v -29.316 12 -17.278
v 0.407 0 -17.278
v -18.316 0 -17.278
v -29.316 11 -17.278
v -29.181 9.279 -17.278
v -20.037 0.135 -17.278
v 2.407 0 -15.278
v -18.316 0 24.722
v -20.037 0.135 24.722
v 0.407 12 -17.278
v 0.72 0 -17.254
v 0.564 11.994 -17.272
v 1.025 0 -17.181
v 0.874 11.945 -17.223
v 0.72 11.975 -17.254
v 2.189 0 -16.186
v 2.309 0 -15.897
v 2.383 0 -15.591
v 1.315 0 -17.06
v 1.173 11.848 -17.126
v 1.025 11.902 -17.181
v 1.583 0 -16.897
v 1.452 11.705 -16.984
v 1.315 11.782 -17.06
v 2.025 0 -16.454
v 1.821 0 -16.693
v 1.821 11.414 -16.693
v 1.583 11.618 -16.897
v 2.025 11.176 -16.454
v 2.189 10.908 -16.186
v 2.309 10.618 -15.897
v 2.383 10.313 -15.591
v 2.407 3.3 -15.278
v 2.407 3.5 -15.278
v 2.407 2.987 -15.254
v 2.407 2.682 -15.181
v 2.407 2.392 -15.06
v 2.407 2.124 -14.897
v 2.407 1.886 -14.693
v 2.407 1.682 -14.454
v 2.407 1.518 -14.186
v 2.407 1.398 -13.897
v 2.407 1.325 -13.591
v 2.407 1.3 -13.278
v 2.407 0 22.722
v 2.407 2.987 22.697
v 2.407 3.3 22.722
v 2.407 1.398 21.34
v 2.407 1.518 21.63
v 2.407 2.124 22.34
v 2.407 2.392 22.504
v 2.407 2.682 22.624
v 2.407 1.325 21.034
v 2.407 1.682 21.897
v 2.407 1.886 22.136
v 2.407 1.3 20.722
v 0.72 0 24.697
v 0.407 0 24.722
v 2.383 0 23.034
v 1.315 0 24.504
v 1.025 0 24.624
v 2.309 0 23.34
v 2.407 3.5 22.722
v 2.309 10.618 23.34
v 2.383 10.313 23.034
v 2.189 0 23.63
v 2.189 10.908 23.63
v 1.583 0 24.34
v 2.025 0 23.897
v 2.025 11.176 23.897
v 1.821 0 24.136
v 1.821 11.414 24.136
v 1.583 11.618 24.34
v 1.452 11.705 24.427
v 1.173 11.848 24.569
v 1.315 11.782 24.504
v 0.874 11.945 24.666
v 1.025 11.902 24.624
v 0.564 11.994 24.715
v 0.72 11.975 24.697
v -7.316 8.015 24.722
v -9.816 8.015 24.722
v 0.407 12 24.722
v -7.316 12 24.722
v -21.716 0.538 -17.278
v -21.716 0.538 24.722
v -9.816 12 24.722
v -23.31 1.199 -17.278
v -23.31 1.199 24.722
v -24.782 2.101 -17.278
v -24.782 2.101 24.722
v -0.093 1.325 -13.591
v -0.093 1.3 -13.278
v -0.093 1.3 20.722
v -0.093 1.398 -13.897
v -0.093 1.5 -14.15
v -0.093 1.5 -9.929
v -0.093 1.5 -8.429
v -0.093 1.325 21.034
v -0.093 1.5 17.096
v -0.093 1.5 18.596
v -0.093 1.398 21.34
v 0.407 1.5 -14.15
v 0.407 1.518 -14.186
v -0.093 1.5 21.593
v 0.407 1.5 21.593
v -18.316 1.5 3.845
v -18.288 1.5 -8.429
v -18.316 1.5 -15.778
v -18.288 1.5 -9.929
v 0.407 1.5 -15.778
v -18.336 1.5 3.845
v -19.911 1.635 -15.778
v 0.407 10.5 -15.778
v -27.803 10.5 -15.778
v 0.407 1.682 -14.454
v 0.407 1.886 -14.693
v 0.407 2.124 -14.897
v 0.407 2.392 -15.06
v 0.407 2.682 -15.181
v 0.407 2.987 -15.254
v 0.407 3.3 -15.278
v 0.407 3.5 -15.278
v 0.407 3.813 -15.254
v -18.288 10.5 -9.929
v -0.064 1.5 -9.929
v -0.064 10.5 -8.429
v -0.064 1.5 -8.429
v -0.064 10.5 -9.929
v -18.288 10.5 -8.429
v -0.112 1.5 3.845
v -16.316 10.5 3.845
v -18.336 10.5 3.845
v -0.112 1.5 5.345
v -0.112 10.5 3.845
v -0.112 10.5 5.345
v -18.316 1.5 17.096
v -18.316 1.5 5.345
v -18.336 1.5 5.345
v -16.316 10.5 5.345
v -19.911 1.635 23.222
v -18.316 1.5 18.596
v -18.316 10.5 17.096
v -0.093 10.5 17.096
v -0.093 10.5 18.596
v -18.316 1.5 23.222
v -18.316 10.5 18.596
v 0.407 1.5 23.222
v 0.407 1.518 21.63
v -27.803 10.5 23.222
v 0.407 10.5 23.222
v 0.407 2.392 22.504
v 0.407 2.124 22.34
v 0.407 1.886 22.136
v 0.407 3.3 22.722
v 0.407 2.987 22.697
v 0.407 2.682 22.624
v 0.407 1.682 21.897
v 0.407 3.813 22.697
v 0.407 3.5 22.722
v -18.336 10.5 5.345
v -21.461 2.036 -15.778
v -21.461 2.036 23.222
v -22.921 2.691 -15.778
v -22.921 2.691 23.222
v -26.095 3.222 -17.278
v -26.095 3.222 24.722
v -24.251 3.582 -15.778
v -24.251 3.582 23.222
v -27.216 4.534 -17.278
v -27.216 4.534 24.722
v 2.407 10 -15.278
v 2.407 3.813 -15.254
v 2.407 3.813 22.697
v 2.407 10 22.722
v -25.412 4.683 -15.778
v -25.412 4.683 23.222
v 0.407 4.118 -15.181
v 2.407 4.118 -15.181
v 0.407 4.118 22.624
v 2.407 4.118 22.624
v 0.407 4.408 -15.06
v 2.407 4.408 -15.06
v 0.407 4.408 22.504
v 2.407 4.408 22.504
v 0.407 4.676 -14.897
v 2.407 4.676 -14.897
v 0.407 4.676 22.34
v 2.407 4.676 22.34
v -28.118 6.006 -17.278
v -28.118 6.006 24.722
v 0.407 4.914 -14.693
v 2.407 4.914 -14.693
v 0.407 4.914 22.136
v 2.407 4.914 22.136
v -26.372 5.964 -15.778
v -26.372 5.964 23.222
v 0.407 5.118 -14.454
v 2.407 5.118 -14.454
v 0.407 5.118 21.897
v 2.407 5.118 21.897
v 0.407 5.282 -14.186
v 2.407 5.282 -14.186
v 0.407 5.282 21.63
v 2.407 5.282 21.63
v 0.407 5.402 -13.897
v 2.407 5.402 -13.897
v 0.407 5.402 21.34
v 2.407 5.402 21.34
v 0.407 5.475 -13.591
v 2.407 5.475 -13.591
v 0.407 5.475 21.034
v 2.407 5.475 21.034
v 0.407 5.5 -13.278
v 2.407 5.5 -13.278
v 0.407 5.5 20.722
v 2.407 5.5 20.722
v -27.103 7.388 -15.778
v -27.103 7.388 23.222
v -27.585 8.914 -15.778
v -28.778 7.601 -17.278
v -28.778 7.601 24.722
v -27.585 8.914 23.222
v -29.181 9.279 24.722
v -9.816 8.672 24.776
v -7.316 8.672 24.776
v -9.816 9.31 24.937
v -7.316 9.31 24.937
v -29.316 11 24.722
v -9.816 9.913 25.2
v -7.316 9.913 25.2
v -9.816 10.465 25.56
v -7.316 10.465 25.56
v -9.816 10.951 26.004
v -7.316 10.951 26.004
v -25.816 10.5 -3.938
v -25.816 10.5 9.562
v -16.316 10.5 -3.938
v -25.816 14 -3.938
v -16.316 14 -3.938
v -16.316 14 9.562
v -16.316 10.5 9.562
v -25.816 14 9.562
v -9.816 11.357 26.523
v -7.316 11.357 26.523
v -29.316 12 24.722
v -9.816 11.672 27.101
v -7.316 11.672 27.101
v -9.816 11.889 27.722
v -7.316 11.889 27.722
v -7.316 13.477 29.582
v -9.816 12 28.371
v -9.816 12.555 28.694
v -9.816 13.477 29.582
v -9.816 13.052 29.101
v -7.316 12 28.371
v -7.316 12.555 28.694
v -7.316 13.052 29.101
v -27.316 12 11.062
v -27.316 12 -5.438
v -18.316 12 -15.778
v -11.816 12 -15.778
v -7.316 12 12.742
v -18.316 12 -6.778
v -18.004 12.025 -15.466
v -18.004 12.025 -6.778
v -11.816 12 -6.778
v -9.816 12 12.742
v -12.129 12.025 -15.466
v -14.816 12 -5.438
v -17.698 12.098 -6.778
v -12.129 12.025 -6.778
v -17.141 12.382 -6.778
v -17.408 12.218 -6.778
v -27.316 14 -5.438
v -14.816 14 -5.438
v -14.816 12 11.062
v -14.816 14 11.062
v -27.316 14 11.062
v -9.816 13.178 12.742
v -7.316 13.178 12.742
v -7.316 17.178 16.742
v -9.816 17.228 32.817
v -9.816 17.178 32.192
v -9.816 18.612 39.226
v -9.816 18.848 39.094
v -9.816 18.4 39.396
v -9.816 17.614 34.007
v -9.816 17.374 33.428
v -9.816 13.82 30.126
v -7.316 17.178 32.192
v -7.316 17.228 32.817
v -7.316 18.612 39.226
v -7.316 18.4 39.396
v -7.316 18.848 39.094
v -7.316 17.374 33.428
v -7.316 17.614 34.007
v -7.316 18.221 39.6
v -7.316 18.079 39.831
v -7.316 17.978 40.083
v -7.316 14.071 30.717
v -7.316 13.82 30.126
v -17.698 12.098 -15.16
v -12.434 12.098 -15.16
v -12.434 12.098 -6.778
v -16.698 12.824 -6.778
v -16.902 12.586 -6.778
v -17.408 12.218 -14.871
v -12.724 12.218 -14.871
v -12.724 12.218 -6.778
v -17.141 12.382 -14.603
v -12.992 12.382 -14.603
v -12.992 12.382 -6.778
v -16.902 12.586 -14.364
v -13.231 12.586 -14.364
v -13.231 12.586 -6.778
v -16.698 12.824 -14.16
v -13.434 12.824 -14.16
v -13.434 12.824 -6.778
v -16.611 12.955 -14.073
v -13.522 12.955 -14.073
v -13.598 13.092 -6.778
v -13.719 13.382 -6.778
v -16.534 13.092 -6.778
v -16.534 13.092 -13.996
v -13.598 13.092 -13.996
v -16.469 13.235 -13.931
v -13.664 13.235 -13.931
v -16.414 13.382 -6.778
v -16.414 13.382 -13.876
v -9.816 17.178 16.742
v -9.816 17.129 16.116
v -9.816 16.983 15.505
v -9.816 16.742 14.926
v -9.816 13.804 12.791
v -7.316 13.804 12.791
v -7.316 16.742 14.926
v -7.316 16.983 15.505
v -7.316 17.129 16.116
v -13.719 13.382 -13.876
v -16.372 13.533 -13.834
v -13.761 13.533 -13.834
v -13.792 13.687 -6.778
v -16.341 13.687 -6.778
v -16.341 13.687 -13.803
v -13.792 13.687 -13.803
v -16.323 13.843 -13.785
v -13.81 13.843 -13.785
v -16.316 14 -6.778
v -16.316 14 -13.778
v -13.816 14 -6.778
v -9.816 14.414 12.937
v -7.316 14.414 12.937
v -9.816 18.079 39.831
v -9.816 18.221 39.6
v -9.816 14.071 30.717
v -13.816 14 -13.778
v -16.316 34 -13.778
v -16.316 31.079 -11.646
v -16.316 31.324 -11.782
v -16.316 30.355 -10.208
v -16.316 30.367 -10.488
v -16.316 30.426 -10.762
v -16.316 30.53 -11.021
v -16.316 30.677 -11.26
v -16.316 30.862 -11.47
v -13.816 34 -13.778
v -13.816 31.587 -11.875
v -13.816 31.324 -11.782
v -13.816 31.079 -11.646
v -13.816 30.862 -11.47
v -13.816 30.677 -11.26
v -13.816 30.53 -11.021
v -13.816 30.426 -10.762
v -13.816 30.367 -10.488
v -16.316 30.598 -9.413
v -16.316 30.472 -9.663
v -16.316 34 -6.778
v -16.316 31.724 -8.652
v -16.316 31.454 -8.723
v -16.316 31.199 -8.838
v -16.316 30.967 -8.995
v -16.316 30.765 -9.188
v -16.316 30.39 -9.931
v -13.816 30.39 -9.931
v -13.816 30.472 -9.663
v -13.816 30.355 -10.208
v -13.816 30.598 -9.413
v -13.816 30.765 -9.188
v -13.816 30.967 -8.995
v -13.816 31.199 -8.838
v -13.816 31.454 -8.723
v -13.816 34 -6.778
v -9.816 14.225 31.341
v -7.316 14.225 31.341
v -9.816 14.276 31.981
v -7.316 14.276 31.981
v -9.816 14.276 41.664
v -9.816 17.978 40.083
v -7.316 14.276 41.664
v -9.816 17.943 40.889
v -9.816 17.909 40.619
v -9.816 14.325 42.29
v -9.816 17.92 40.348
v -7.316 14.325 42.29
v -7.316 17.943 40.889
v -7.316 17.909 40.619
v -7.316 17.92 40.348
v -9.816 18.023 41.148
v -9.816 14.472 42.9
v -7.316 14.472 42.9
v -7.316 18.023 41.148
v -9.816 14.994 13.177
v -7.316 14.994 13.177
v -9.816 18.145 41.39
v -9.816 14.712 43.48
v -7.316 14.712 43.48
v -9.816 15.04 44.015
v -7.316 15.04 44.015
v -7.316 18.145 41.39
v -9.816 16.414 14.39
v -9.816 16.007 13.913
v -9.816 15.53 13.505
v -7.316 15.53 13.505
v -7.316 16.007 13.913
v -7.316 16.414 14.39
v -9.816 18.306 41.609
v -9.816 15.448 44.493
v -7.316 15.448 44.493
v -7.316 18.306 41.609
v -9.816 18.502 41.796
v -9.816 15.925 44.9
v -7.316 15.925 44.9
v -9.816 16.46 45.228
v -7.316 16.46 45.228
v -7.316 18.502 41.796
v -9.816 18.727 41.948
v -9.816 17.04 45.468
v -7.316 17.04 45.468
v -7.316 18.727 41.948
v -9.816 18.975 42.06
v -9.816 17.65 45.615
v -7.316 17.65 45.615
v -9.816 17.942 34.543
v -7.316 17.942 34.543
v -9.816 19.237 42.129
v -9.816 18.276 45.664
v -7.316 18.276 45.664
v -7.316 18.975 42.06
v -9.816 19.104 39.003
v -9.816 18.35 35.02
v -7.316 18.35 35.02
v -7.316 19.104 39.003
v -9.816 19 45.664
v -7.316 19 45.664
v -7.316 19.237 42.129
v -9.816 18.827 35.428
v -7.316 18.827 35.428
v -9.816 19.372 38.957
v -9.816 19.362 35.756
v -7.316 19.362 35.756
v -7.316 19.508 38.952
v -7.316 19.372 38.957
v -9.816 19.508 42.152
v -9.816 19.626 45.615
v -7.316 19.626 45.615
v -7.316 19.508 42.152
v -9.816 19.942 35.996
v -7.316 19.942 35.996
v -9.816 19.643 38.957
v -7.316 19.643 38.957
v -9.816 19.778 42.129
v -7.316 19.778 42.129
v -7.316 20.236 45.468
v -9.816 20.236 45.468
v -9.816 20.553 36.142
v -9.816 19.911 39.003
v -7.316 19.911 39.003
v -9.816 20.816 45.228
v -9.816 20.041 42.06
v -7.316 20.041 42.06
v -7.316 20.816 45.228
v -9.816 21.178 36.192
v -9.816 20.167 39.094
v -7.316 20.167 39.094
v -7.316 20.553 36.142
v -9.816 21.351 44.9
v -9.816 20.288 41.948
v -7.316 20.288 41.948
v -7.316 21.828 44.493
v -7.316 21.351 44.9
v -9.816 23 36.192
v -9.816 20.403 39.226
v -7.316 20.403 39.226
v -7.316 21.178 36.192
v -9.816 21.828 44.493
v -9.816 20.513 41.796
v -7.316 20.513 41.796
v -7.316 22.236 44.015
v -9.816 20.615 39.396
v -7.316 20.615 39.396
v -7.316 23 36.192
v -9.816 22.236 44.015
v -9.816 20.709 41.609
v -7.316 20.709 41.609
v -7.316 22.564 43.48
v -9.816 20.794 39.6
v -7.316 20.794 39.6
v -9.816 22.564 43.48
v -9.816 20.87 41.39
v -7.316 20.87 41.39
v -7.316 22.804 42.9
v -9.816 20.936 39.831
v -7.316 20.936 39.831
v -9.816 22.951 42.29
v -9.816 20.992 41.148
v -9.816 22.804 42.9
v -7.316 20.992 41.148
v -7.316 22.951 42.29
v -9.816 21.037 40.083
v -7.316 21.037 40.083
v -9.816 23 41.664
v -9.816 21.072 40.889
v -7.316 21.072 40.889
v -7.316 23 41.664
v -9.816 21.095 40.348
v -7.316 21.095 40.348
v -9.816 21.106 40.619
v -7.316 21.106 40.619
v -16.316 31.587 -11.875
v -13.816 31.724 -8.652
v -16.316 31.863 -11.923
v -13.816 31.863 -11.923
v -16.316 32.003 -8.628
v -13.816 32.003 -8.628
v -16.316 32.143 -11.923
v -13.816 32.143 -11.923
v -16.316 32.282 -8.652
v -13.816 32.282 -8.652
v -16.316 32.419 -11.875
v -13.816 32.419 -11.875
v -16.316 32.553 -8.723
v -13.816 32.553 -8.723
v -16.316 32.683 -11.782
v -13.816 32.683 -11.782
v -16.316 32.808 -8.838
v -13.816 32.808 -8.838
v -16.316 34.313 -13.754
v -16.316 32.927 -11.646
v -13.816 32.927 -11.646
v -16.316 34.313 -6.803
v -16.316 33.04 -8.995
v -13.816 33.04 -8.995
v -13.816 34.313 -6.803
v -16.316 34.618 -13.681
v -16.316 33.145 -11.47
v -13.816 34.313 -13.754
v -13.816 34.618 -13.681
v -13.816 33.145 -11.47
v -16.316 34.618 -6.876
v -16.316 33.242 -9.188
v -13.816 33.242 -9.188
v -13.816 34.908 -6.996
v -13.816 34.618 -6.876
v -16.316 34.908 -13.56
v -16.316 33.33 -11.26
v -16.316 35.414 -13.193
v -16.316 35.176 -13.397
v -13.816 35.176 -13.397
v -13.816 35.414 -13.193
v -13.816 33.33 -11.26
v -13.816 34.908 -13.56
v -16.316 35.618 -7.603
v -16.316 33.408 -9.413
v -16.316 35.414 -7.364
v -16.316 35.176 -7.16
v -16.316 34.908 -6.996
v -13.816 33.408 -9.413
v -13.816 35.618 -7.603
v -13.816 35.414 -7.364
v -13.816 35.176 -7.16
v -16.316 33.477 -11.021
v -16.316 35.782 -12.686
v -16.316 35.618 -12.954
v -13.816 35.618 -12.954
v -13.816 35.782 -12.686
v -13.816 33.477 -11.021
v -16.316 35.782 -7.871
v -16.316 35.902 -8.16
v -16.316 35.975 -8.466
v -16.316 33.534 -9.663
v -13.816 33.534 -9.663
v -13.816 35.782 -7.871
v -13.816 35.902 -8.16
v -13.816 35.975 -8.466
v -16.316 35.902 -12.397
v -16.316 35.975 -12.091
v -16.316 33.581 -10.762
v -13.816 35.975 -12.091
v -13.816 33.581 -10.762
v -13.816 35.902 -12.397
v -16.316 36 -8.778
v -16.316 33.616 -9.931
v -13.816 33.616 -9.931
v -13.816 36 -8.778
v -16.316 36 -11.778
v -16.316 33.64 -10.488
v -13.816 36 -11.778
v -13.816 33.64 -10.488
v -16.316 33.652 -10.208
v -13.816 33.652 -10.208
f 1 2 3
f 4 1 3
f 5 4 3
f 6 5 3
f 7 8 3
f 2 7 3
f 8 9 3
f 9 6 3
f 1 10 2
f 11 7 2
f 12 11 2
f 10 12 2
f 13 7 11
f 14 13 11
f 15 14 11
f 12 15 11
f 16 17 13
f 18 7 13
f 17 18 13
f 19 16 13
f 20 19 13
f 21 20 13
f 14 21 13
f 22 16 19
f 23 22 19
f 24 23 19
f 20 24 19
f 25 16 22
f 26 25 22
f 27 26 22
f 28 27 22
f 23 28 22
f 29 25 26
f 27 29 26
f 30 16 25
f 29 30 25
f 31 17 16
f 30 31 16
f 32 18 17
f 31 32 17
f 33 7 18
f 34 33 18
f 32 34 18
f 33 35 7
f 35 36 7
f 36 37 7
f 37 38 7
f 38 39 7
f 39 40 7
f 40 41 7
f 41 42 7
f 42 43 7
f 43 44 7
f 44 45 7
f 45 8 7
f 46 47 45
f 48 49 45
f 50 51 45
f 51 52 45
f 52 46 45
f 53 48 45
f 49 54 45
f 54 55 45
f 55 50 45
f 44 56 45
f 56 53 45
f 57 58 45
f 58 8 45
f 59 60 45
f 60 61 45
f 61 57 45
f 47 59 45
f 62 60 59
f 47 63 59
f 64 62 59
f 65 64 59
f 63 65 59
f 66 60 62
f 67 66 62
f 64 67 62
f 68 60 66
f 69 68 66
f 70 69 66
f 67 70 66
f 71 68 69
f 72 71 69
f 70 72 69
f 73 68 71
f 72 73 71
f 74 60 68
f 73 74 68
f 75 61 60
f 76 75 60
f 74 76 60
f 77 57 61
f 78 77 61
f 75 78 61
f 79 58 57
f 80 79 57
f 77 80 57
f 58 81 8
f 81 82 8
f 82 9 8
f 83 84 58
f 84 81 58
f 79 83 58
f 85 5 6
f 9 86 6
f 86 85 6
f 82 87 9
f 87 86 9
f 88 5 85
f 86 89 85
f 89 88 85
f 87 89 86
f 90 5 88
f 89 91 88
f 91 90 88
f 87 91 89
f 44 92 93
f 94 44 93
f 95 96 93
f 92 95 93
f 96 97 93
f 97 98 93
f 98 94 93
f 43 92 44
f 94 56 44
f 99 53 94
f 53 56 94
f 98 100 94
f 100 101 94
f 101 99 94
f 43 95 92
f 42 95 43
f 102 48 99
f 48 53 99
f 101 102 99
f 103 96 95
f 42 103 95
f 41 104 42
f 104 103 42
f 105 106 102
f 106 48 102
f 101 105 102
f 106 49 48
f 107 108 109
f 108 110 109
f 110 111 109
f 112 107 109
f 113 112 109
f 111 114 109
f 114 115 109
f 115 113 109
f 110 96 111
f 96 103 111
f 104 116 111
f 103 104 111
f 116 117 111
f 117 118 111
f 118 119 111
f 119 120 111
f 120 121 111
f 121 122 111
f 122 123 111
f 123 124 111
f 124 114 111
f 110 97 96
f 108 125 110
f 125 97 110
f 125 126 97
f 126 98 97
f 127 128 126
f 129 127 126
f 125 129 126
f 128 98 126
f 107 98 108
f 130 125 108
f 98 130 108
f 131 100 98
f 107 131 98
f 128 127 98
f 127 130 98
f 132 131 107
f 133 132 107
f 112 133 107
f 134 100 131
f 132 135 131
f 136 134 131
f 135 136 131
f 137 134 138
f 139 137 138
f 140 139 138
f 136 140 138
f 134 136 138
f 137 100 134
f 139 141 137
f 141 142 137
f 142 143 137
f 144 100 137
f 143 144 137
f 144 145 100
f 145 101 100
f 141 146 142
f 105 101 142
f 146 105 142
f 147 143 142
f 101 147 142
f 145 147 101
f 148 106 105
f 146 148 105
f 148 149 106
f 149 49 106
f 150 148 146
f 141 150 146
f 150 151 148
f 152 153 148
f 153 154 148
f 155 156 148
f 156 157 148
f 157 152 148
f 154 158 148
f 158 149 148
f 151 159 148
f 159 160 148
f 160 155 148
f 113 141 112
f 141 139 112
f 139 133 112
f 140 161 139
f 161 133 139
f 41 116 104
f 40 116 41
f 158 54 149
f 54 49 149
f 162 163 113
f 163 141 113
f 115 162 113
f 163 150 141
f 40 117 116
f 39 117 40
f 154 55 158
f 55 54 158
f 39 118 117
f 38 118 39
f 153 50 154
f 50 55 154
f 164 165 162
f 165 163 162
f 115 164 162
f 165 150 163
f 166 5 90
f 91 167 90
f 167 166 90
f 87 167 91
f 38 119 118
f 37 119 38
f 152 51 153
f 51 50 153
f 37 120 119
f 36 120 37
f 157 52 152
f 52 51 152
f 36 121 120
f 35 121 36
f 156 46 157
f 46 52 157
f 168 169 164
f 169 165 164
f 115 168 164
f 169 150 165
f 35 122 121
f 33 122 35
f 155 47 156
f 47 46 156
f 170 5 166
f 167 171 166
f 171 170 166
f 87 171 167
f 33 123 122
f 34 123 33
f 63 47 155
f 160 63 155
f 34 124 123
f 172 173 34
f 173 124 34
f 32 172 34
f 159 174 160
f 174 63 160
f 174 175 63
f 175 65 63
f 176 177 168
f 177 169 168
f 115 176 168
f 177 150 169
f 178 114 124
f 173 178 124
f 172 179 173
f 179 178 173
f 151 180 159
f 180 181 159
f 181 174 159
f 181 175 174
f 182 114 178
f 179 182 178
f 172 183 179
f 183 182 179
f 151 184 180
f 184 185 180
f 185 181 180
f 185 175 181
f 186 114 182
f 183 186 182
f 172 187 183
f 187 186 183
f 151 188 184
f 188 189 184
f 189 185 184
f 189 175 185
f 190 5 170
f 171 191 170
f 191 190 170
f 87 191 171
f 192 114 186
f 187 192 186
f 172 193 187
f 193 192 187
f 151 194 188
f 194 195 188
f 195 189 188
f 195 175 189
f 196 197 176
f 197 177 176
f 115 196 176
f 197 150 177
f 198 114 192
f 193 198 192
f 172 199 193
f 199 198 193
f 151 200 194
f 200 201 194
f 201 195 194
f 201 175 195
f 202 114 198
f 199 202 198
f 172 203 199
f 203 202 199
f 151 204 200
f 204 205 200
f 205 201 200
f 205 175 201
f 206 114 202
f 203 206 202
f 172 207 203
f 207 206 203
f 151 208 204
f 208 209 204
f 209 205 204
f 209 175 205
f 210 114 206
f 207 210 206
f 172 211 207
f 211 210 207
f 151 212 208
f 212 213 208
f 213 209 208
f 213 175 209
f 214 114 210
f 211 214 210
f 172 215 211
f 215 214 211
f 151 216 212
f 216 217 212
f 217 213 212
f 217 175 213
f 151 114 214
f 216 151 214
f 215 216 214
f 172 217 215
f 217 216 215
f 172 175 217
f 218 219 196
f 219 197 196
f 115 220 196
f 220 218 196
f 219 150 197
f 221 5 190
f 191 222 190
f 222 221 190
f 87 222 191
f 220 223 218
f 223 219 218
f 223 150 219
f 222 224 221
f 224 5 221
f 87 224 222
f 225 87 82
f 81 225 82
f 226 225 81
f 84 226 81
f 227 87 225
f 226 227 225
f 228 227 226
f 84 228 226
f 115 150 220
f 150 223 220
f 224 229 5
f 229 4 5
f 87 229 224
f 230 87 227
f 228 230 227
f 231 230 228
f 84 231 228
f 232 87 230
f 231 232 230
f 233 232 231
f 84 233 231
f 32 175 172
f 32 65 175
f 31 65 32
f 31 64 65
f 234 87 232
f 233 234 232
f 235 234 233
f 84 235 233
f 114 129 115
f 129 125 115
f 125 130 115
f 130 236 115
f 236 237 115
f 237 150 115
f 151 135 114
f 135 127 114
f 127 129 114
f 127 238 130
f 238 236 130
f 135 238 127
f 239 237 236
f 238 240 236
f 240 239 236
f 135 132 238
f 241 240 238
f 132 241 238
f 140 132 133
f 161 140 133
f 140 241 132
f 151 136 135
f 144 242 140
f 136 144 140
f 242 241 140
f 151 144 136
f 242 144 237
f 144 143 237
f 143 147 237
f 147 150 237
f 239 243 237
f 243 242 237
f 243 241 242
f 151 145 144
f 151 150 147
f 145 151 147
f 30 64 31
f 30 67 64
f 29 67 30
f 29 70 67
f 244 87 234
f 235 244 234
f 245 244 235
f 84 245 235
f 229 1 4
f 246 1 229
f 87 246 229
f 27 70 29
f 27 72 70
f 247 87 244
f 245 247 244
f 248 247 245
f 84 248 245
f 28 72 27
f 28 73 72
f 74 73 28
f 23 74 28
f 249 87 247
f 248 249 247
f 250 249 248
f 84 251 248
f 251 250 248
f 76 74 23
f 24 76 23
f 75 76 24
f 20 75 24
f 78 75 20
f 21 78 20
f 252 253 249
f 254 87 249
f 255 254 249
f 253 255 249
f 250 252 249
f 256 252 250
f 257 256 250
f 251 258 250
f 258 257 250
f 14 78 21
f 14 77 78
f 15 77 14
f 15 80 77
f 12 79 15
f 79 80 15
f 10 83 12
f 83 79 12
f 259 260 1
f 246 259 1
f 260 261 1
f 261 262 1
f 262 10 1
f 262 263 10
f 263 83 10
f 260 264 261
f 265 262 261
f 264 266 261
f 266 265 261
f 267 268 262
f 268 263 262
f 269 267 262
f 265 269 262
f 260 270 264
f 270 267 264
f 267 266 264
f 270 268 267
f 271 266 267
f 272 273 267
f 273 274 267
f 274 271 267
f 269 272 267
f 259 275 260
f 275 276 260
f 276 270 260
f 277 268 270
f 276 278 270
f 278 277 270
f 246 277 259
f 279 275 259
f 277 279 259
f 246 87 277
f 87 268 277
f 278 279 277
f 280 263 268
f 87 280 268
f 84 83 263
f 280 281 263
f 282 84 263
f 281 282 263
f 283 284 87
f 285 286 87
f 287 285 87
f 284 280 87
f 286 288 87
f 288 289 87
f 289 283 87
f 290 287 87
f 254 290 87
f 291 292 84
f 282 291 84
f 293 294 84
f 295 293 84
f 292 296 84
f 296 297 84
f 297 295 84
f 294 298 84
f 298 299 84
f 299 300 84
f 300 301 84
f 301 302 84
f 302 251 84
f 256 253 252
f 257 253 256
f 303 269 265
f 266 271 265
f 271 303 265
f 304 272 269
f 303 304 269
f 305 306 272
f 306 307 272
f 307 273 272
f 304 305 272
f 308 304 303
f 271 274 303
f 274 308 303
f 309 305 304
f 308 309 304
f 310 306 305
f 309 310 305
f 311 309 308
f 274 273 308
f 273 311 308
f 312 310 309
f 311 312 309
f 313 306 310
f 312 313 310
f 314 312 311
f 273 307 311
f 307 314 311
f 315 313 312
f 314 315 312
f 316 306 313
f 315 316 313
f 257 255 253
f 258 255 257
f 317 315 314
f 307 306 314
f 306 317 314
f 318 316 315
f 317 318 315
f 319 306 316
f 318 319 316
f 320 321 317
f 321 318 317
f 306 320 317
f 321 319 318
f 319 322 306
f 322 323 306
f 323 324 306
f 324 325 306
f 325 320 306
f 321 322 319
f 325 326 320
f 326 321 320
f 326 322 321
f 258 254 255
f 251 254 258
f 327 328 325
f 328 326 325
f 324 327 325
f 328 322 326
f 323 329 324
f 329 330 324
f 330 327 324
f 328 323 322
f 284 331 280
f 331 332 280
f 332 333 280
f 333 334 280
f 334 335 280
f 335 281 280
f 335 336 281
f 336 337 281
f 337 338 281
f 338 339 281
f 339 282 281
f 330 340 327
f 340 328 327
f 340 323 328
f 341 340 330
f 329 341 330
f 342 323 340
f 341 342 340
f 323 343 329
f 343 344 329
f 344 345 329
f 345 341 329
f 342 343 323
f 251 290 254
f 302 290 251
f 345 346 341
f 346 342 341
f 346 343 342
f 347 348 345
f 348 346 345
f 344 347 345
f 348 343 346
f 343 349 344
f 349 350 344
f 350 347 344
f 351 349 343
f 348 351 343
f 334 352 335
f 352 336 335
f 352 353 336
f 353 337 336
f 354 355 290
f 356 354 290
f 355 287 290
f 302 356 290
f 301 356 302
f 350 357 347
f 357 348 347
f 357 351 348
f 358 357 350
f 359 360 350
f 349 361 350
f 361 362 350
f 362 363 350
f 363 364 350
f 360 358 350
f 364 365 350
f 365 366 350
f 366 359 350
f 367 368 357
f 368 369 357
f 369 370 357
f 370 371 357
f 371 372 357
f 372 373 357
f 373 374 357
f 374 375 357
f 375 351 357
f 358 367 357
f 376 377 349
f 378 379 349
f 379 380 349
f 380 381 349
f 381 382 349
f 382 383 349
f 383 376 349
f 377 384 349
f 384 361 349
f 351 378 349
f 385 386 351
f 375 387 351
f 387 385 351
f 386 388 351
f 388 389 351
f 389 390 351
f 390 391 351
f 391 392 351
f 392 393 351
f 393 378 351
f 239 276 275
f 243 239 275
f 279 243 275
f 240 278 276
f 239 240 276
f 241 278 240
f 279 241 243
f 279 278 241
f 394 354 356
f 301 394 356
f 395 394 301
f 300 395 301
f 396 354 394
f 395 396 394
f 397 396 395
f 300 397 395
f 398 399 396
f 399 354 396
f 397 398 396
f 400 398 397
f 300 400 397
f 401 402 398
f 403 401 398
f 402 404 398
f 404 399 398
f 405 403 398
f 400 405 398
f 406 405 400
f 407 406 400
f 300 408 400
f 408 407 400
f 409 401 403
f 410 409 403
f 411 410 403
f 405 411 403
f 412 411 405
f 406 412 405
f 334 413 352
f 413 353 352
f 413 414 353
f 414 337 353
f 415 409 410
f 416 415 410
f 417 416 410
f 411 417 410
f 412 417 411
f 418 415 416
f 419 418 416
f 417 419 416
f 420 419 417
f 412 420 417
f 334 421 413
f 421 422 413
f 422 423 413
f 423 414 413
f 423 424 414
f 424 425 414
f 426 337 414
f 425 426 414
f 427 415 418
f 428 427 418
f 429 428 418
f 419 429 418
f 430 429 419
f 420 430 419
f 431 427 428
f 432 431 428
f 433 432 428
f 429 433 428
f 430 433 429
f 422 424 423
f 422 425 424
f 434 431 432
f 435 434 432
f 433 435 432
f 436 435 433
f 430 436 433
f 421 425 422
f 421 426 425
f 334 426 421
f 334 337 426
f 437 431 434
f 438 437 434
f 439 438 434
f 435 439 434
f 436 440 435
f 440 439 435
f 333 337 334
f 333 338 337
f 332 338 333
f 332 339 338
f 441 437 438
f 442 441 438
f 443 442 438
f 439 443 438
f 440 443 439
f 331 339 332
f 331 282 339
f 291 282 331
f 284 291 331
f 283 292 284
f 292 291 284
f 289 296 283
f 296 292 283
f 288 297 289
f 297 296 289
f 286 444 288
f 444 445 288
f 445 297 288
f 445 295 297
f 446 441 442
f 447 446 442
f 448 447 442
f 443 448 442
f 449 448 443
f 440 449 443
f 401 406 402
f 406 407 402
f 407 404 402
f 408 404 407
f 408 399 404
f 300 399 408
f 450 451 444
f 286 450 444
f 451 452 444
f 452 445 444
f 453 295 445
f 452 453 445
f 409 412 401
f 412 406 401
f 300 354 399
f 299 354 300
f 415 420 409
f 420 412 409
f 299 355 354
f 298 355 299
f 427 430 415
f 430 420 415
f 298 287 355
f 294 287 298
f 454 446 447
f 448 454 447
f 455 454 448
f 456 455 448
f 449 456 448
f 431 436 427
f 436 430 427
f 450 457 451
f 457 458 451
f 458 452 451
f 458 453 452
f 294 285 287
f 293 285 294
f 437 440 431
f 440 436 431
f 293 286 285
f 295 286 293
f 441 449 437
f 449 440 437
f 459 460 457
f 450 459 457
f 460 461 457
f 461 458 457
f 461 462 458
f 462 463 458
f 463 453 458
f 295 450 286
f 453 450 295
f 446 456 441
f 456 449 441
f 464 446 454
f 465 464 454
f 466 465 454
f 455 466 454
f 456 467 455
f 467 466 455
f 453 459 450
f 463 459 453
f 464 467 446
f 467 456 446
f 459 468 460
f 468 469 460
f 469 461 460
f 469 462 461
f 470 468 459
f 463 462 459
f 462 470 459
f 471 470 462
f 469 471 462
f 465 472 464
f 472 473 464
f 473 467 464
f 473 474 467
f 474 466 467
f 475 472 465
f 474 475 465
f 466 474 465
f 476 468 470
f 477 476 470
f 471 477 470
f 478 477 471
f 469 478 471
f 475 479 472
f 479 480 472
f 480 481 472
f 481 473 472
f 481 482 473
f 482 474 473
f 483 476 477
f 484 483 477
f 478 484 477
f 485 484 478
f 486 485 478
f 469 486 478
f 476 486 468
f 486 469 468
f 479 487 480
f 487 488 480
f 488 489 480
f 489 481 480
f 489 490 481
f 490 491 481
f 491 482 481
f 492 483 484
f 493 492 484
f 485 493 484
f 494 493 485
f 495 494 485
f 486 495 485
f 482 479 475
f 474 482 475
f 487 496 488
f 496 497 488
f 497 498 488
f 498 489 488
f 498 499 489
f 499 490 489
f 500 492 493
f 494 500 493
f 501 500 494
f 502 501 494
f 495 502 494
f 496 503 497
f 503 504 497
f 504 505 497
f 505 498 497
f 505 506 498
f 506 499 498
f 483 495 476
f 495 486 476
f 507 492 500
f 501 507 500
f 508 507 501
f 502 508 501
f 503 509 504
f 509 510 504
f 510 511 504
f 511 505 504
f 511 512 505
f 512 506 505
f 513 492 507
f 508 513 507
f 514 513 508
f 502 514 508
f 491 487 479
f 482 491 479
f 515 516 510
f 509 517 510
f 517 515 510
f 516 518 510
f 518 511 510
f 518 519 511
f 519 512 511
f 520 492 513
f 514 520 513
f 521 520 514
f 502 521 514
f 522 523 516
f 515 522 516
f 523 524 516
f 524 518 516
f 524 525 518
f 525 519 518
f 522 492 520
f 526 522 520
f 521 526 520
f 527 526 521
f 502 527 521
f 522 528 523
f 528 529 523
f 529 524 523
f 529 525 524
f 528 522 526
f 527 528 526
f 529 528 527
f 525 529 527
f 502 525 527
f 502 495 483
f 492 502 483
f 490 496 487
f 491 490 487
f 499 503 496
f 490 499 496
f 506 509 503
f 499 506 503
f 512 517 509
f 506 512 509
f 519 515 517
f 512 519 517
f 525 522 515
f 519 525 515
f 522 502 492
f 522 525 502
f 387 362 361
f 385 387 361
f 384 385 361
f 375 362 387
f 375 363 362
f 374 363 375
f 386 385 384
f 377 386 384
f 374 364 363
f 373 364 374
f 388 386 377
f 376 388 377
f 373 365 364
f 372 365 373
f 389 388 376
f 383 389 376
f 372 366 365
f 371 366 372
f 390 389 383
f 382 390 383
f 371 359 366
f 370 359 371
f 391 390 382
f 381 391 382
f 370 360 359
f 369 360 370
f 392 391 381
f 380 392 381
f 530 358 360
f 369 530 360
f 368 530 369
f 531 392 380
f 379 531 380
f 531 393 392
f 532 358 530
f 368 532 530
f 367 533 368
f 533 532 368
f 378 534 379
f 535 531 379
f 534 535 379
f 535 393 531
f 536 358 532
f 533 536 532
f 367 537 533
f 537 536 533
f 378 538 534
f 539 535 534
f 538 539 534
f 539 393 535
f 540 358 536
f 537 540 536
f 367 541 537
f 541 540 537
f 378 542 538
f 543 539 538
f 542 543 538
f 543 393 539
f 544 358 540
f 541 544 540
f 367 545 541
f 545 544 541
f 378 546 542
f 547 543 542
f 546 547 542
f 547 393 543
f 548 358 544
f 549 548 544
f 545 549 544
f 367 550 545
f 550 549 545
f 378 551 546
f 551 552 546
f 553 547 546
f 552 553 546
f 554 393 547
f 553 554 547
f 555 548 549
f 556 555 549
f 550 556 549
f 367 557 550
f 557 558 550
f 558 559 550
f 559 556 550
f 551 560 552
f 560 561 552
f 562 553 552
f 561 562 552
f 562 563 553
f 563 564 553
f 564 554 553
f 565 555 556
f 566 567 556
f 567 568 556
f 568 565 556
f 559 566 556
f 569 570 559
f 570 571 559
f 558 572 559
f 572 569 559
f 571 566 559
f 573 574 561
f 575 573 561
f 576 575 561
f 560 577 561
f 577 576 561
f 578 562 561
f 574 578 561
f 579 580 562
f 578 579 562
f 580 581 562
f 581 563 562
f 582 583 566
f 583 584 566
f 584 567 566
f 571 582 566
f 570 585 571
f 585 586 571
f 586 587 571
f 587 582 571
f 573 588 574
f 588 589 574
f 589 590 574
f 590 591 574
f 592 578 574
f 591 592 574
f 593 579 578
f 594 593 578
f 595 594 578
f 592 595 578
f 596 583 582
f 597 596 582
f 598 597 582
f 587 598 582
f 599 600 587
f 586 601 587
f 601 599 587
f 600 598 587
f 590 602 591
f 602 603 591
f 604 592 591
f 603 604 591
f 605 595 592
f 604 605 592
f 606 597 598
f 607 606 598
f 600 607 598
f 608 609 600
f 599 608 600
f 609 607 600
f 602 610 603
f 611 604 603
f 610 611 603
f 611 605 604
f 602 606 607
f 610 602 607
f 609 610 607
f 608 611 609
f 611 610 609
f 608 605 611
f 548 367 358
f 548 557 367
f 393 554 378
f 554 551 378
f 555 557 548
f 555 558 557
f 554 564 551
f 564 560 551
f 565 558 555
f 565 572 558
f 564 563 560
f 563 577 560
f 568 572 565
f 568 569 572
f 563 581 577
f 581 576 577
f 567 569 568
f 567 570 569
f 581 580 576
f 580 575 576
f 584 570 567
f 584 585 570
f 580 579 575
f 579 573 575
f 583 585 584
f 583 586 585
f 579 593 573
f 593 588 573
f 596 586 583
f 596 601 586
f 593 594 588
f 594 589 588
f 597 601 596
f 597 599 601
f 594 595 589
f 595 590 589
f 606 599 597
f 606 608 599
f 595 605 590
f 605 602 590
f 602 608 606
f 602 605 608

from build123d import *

# Parameters (mm, degrees)
SALIENTE_EXTRUIR1_DEPTH  = 12
CROQUIS2_W               = 12.5
CROQUIS2_H               = 16.5
CROQUIS2_W_2             = 9.5
CROQUIS2_H_2             = 13.5
SALIENTE_EXTRUIR2_DEPTH  = 2
SALIENTE_EXTRUIR4_DEPTH  = 11
CROQUIS4_R               = 1.6
CORTAR_EXTRUIR1_DEPTH    = 2.5
CROQUIS5_W               = 17.29289048
CROQUIS5_H               = 2.276098228
CROQUIS5_W_2             = 23.449996424
CROQUIS5_H_2             = 5.821617307
CORTAR_EXTRUIR2_DEPTH    = 2
SALIENTE_EXTRUIR5_DEPTH  = 3
CROQUIS7_W               = 60
CROQUIS7_H               = 12
SALIENTE_EXTRUIR6_DEPTH  = 3
CORTAR_EXTRUIR3_DEPTH    = 42
VACIADO4_START           = -15.778481013
VACIADO4_DEPTH           = 39
VACIADO4_2_OUTLINE_W     = 28
VACIADO4_2_OUTLINE_H     = 9
VACIADO4_2_DEPTH         = 4
VACIADO4_START_2         = 19.221518987
VACIADO4_3_OUTLINE_W     = 28
VACIADO4_3_OUTLINE_H     = 9
VACIADO4_3_DEPTH         = 4
VACIADO4_START_3         = -3.938481013
VACIADO4_4_OUTLINE_W     = 9.5
VACIADO4_4_OUTLINE_H     = 1.5
VACIADO4_4_DEPTH         = 13.5
REDONDEO2_R              = 4
REDONDEO3_R              = 4
CROQUIS10_W              = 2.5
CROQUIS10_H              = 7
SALIENTE_EXTRUIR8_DEPTH  = 24
CROQUIS11_R              = 1.65
CORTAR_EXTRUIR4_DEPTH    = 2.5
CROQUIS14_R              = 1.6
SALIENTE_EXTRUIR10_DEPTH = 0.5
CROQUIS15_W              = 28.276285021
CROQUIS15_H              = 42
CORTAR_EXTRUIR5_DEPTH    = 12
CROQUIS16_W              = 42
CROQUIS16_H              = 12
SALIENTE_EXTRUIR11_DEPTH = 2
CORTAR_EXTRUIR6_DEPTH    = 2.5
CROQUIS19_W              = 18.223714979
CROQUIS19_H              = 1.5
SALIENTE_EXTRUIR16_DEPTH = 9
REDONDEO4_R              = 2
REDONDEO5_R              = 2
REDONDEO6_R              = 2


with BuildPart() as part:
    # Croquis1 → Saliente-Extruir1 (new body)
    with BuildSketch(Plane(origin=(0, 0, 0), x_dir=(1, 0, 0), z_dir=(0, 1, 0))):
        Polygon((30.683544304, -17.721518987), (30.683544304, -21.721518987), (-29.316455696, -21.721518987), (-29.316455696, 14.278481013), (30.683544304, 14.278481013), (30.683544304, 10.278481013), (2.683544304, 10.278481013), (2.683544304, -17.721518987), align=None)
    extrude(amount=SALIENTE_EXTRUIR1_DEPTH)

    # Croquis2 → Saliente-Extruir2 (add)
    with BuildSketch(Plane(origin=(0, 12, 0), x_dir=(1, 0, 0), z_dir=(0, 1, 0))):
        with Locations((-21.066455696, -2.811518987)):
            Rectangle(CROQUIS2_W, CROQUIS2_H)
        with Locations((-21.066455696, -2.811518987)):
            Rectangle(CROQUIS2_W_2, CROQUIS2_H_2, mode=Mode.SUBTRACT)
    extrude(amount=SALIENTE_EXTRUIR2_DEPTH)

    # Croquis3 → Saliente-Extruir4 (add)
    with BuildSketch(Plane(origin=(0, 12, 0), x_dir=(1, 0, 0), z_dir=(0, 1, 0))):
        Polygon((-7.816455696, -12.741518987), (-7.816455696, -41.560532566), (-7.816455696, -45.664219129), (-9.816455696, -45.664219129), (-9.816455696, -41.560532566), (-9.816455696, -12.741518987), align=None)
    extrude(amount=SALIENTE_EXTRUIR4_DEPTH)

    # Croquis4 → Cortar-Extruir1 (cut)
    with BuildSketch(Plane.ZY.offset(9.816455696)):
        with Locations((40.551518987, 19.507537468)):
            Circle(CROQUIS4_R)
    extrude(amount=-CORTAR_EXTRUIR1_DEPTH, mode=Mode.SUBTRACT)

    # Croquis5 → Cortar-Extruir2 (cut)
    with BuildSketch(Plane.ZY.offset(9.816455696)):
        with Locations((37.017773889, 13.138049114)):
            Rectangle(CROQUIS5_W, CROQUIS5_H)
        with Locations((24.466517199, 20.089191347)):
            Rectangle(CROQUIS5_W_2, CROQUIS5_H_2)
    extrude(amount=-CORTAR_EXTRUIR2_DEPTH, mode=Mode.SUBTRACT)

    # Croquis6 → Saliente-Extruir5 (add)
    with BuildSketch(Plane.XY.offset(21.721518987)):
        Polygon((-29.316455696, 0), (30.683544304, 0), (30.683544304, 12), (-7.816455696, 12), (-9.816455696, 12), (-29.316455696, 12), align=None)
    extrude(amount=SALIENTE_EXTRUIR5_DEPTH)

    # Croquis7 → Saliente-Extruir6 (add)
    with BuildSketch(Plane(origin=(0, 0, -14.278481013), x_dir=(-1, 0, 0), z_dir=(0, 0, -1))):
        with Locations((-0.683544304, 6)):
            Rectangle(CROQUIS7_W, CROQUIS7_H)
    extrude(amount=SALIENTE_EXTRUIR6_DEPTH)

    # Croquis8 → Cortar-Extruir3 (cut)
    with BuildSketch(Plane.XY.offset(24.721518987)):
        with BuildLine():
            Line((-29.316455696, 0), (-18.316455696, 0))
            ThreePointArc((-18.316455696, 0), (-26.094630289, 3.221825407), (-29.316455696, 11))
            Line((-29.316455696, 11), (-29.316455696, 0))
        make_face()
    extrude(amount=-CORTAR_EXTRUIR3_DEPTH, mode=Mode.SUBTRACT)

    # Vaciado4: read off the stored shape, not the designer's step
    # Vaciado4 outline → Vaciado4 (cut)
    with BuildSketch(Plane.XY.offset(VACIADO4_START)):
        with BuildLine():
            Line((1.183544304, 10.5), (-27.803288677, 10.5))
            ThreePointArc((-27.803288677, 10.5), (-24.854804112, 4.107975624), (-18.316455696, 1.5))
            Line((-18.316455696, 1.5), (1.183544304, 1.5))
            Line((1.183544304, 1.5), (1.183544304, 10.5))
        make_face()
    extrude(amount=VACIADO4_DEPTH, mode=Mode.SUBTRACT)

    # Vaciado4 2 outline → Vaciado4 2 (cut)
    with BuildSketch(Plane.XY.offset(VACIADO4_START)):
        with Locations((15.183544304, 6)):
            Rectangle(VACIADO4_2_OUTLINE_W, VACIADO4_2_OUTLINE_H)
    extrude(amount=VACIADO4_2_DEPTH, mode=Mode.SUBTRACT)

    # Vaciado4 3 outline → Vaciado4 3 (cut)
    with BuildSketch(Plane.XY.offset(VACIADO4_START_2)):
        with Locations((15.183544304, 6)):
            Rectangle(VACIADO4_3_OUTLINE_W, VACIADO4_3_OUTLINE_H)
    extrude(amount=VACIADO4_3_DEPTH, mode=Mode.SUBTRACT)

    # Vaciado4 4 outline → Vaciado4 4 (cut)
    with BuildSketch(Plane.XY.offset(VACIADO4_START_3)):
        with Locations((-21.066455696, 11.25)):
            Rectangle(VACIADO4_4_OUTLINE_W, VACIADO4_4_OUTLINE_H)
    extrude(amount=VACIADO4_4_DEPTH, mode=Mode.SUBTRACT)

    # Redondeo2
    # the kernel refuses this fillet: 4 mm, written as the material it adds along each edge
    with BuildSketch(Plane(origin=(-9.816455696, 12, 24.721518987), x_dir=(0, -1, 0), z_dir=(1, 0, 0))) as redondeo2_piece_1:
        with BuildLine():
            CenterArc((3.984641355, -4), REDONDEO2_R, 90, 84.977462971)
            Line((0, -3.649809662), (0, 0))
            Line((0, 0), (3.984641355, 0))
        make_face()
    extrude(amount=2)
    with BuildSketch(Plane(origin=(-9.816455696, 14.276098228, 28.371328649), x_dir=(0, 0, 1), z_dir=(1, 0, 0))) as redondeo2_piece_2:
        with BuildLine():
            CenterArc((3.609454623, 4), REDONDEO2_R, 205.52948015, 64.47051985)
            Line((0, 2.276098228), (0, 0))
            Line((0, 0), (3.609454623, 0))
        make_face()
    extrude(amount=2)
    with BuildSketch(Plane(origin=(-9.816455696, 17.178382693, 36.191515411), x_dir=(0, 0, -1), z_dir=(1, 0, 0))) as redondeo2_piece_3:
        with BuildLine():
            CenterArc((REDONDEO2_R, REDONDEO2_R), REDONDEO2_R, 180, 90)
            Line((0, REDONDEO2_R), (0, 0))
            Line((0, 0), (REDONDEO2_R, 0))
        make_face()
    extrude(amount=2)
    # the kernel refuses this fillet: 4 mm, written as the material it takes off along each edge
    with BuildSketch(Plane(origin=(-19.816455696, 17.178382693, 12.741518987), x_dir=(0, 0, 1), z_dir=(1, 0, 0))) as redondeo2_2_piece_1:
        with BuildLine():
            CenterArc((REDONDEO2_R, REDONDEO2_R), REDONDEO2_R, 180, 90)
            Line((0, REDONDEO2_R), (0, 0))
            Line((0, 0), (REDONDEO2_R, 0))
        make_face()
    extrude(amount=22, mode=Mode.SUBTRACT)

    # Redondeo3
    redondeo3_edges = [part.edges().sort_by_distance(p)[0] for p in [
        (-8.816455696, 23, 45.664219129),
        (-8.816455696, 14.276098228, 45.664219129),
    ]]
    fillet(redondeo3_edges, radius=REDONDEO3_R)

    # Croquis10 → Saliente-Extruir8 (add)
    with BuildSketch(Plane(origin=(0, 12, 0), x_dir=(1, 0, 0), z_dir=(0, 1, 0))):
        with Locations((-15.066455696, 10.278481013)):
            Rectangle(CROQUIS10_W, CROQUIS10_H)
    extrude(amount=SALIENTE_EXTRUIR8_DEPTH)

    # Croquis11 → Cortar-Extruir4 (cut)
    with BuildSketch(Plane.ZY.offset(16.316455696)):
        with Locations((-10.278481013, 32.003262859)):
            Circle(CROQUIS11_R)
    extrude(amount=-CORTAR_EXTRUIR4_DEPTH, mode=Mode.SUBTRACT)

    # Croquis14 → Saliente-Extruir10 (add)
    with BuildSketch(Plane(origin=(-7.816455696, 0, 0), x_dir=(0, 0, -1), z_dir=(1, 0, 0))):
        with BuildLine():
            Line((-36.191515411, 23), (-41.664219129, 23))
            ThreePointArc((-41.664219129, 23), (-44.492646254, 21.828427125), (-45.664219129, 19))
            Line((-45.664219129, 19), (-45.664219129, 18.276098228))
            ThreePointArc((-45.664219129, 18.276098228), (-44.492646254, 15.447671103), (-41.664219129, 14.276098228))
            Line((-41.664219129, 14.276098228), (-31.980783273, 14.276098228))
            ThreePointArc((-31.980783273, 14.276098228), (-29.847195577, 13.659558519), (-28.371328649, 12))
            ThreePointArc((-28.371328649, 12), (-25.771878217, 10.717139414), (-24.721518987, 8.015358645))
            Line((-24.721518987, 8.015358645), (-24.721518987, 12))
            Line((-24.721518987, 12), (-12.741518987, 12))
            Line((-12.741518987, 12), (-12.741518987, 13.178382693))
            ThreePointArc((-12.741518987, 13.178382693), (-13.913091863, 16.006809817), (-16.741518987, 17.178382693))
            Line((-16.741518987, 17.178382693), (-32.191515411, 17.178382693))
            ThreePointArc((-32.191515411, 17.178382693), (-35.019942535, 18.349955568), (-36.191515411, 21.178382693))
            Line((-36.191515411, 21.178382693), (-36.191515411, 23))
        make_face()
        with Locations(Location((-40.551518987, 19.507537468, 0), (0, 0, 180))):
            Circle(CROQUIS14_R, mode=Mode.SUBTRACT)
    extrude(amount=SALIENTE_EXTRUIR10_DEPTH)

    # Croquis15 → Cortar-Extruir5 (cut)
    with BuildSketch(Plane(origin=(0, 12, 0), x_dir=(1, 0, 0), z_dir=(0, 1, 0))):
        with Locations((16.545401794, -3.721518987)):
            Rectangle(CROQUIS15_W, CROQUIS15_H)
    extrude(amount=-CORTAR_EXTRUIR5_DEPTH, mode=Mode.SUBTRACT)

    # Croquis16 → Saliente-Extruir11 (add)
    with BuildSketch(Plane(origin=(2.407259283, 0, 0), x_dir=(0, 0, -1), z_dir=(1, 0, 0))):
        with Locations((-3.721518987, 6)):
            Rectangle(CROQUIS16_W, CROQUIS16_H)
    extrude(amount=-SALIENTE_EXTRUIR11_DEPTH)

    # Croquis18 → Cortar-Extruir6 (cut)
    with BuildSketch(Plane(origin=(2.407259283, 0, 0), x_dir=(0, 0, -1), z_dir=(1, 0, 0))):
        with BuildLine():
            Line((-20.721518987, 5.5), (13.278481013, 5.5))
            ThreePointArc((13.278481013, 5.5), (14.692694575, 4.914213562), (15.278481013, 3.5))
            Line((15.278481013, 3.5), (15.278481013, 3.3))
            ThreePointArc((15.278481013, 3.3), (14.692694575, 1.885786438), (13.278481013, 1.3))
            Line((13.278481013, 1.3), (-20.721518987, 1.3))
            ThreePointArc((-20.721518987, 1.3), (-22.13573255, 1.885786438), (-22.721518987, 3.3))
            Line((-22.721518987, 3.3), (-22.721518987, 3.5))
            ThreePointArc((-22.721518987, 3.5), (-22.13573255, 4.914213562), (-20.721518987, 5.5))
        make_face()
    extrude(amount=-CORTAR_EXTRUIR6_DEPTH, mode=Mode.SUBTRACT)

    # Croquis19 → Saliente-Extruir16 (add)
    with BuildSketch(Plane(origin=(0, 1.5, 0), x_dir=(1, 0, 0), z_dir=(0, 1, 0))):
        with Locations((-9.204598207, -17.846071371)):
            Rectangle(CROQUIS19_W, CROQUIS19_H)
        with Locations((-9.224216979, -4.59531752)):
            Rectangle(CROQUIS19_W, CROQUIS19_H)
        with Locations((-9.175696895, 9.179239743)):
            Rectangle(CROQUIS19_W, CROQUIS19_H)
    extrude(amount=SALIENTE_EXTRUIR16_DEPTH)

    # Redondeo4
    # the kernel refuses this fillet: 2 mm, written as the material it takes off along each edge
    with BuildSketch(Plane(origin=(2.407259283, 12, -22.278481013), x_dir=(-1, 0, 0), z_dir=(0, 0, 1))) as redondeo4_piece_1:
        with BuildLine():
            CenterArc((REDONDEO4_R, REDONDEO4_R), REDONDEO4_R, 180, 90)
            Line((0, REDONDEO4_R), (0, 0))
            Line((0, 0), (REDONDEO4_R, 0))
        make_face()
    extrude(amount=52, mode=Mode.SUBTRACT)
    with BuildSketch(Plane(origin=(2.407259283, 17, 24.721518987), x_dir=(-1, 0, 0), z_dir=(0, -1, 0)), Plane(origin=(2.407259283, 17, -17.278481013), x_dir=(0, 0, 1), z_dir=(0, -1, 0))) as redondeo4_piece_2:
        with BuildLine():
            CenterArc((REDONDEO4_R, REDONDEO4_R), REDONDEO4_R, 180, 90)
            Line((0, REDONDEO4_R), (0, 0))
            Line((0, 0), (REDONDEO4_R, 0))
        make_face()
    extrude(amount=22, mode=Mode.SUBTRACT)

    # Redondeo5
    redondeo5_edges = [part.edges().sort_by_distance(p)[0] for p in [
        (-15.066455696, 36, -13.778481013),
        (-15.066455696, 36, -6.778481013),
    ]]
    fillet(redondeo5_edges, radius=REDONDEO5_R)

    # Redondeo6
    redondeo6_edges = [part.edges().sort_by_distance(p)[0] for p in [
        (-13.816455696, 12, -10.278481013),
        (-15.066455696, 12, -13.778481013),
        (-16.316455696, 12, -10.278481013),
    ]]
    fillet(redondeo6_edges, radius=REDONDEO6_R)


solid = part.part
